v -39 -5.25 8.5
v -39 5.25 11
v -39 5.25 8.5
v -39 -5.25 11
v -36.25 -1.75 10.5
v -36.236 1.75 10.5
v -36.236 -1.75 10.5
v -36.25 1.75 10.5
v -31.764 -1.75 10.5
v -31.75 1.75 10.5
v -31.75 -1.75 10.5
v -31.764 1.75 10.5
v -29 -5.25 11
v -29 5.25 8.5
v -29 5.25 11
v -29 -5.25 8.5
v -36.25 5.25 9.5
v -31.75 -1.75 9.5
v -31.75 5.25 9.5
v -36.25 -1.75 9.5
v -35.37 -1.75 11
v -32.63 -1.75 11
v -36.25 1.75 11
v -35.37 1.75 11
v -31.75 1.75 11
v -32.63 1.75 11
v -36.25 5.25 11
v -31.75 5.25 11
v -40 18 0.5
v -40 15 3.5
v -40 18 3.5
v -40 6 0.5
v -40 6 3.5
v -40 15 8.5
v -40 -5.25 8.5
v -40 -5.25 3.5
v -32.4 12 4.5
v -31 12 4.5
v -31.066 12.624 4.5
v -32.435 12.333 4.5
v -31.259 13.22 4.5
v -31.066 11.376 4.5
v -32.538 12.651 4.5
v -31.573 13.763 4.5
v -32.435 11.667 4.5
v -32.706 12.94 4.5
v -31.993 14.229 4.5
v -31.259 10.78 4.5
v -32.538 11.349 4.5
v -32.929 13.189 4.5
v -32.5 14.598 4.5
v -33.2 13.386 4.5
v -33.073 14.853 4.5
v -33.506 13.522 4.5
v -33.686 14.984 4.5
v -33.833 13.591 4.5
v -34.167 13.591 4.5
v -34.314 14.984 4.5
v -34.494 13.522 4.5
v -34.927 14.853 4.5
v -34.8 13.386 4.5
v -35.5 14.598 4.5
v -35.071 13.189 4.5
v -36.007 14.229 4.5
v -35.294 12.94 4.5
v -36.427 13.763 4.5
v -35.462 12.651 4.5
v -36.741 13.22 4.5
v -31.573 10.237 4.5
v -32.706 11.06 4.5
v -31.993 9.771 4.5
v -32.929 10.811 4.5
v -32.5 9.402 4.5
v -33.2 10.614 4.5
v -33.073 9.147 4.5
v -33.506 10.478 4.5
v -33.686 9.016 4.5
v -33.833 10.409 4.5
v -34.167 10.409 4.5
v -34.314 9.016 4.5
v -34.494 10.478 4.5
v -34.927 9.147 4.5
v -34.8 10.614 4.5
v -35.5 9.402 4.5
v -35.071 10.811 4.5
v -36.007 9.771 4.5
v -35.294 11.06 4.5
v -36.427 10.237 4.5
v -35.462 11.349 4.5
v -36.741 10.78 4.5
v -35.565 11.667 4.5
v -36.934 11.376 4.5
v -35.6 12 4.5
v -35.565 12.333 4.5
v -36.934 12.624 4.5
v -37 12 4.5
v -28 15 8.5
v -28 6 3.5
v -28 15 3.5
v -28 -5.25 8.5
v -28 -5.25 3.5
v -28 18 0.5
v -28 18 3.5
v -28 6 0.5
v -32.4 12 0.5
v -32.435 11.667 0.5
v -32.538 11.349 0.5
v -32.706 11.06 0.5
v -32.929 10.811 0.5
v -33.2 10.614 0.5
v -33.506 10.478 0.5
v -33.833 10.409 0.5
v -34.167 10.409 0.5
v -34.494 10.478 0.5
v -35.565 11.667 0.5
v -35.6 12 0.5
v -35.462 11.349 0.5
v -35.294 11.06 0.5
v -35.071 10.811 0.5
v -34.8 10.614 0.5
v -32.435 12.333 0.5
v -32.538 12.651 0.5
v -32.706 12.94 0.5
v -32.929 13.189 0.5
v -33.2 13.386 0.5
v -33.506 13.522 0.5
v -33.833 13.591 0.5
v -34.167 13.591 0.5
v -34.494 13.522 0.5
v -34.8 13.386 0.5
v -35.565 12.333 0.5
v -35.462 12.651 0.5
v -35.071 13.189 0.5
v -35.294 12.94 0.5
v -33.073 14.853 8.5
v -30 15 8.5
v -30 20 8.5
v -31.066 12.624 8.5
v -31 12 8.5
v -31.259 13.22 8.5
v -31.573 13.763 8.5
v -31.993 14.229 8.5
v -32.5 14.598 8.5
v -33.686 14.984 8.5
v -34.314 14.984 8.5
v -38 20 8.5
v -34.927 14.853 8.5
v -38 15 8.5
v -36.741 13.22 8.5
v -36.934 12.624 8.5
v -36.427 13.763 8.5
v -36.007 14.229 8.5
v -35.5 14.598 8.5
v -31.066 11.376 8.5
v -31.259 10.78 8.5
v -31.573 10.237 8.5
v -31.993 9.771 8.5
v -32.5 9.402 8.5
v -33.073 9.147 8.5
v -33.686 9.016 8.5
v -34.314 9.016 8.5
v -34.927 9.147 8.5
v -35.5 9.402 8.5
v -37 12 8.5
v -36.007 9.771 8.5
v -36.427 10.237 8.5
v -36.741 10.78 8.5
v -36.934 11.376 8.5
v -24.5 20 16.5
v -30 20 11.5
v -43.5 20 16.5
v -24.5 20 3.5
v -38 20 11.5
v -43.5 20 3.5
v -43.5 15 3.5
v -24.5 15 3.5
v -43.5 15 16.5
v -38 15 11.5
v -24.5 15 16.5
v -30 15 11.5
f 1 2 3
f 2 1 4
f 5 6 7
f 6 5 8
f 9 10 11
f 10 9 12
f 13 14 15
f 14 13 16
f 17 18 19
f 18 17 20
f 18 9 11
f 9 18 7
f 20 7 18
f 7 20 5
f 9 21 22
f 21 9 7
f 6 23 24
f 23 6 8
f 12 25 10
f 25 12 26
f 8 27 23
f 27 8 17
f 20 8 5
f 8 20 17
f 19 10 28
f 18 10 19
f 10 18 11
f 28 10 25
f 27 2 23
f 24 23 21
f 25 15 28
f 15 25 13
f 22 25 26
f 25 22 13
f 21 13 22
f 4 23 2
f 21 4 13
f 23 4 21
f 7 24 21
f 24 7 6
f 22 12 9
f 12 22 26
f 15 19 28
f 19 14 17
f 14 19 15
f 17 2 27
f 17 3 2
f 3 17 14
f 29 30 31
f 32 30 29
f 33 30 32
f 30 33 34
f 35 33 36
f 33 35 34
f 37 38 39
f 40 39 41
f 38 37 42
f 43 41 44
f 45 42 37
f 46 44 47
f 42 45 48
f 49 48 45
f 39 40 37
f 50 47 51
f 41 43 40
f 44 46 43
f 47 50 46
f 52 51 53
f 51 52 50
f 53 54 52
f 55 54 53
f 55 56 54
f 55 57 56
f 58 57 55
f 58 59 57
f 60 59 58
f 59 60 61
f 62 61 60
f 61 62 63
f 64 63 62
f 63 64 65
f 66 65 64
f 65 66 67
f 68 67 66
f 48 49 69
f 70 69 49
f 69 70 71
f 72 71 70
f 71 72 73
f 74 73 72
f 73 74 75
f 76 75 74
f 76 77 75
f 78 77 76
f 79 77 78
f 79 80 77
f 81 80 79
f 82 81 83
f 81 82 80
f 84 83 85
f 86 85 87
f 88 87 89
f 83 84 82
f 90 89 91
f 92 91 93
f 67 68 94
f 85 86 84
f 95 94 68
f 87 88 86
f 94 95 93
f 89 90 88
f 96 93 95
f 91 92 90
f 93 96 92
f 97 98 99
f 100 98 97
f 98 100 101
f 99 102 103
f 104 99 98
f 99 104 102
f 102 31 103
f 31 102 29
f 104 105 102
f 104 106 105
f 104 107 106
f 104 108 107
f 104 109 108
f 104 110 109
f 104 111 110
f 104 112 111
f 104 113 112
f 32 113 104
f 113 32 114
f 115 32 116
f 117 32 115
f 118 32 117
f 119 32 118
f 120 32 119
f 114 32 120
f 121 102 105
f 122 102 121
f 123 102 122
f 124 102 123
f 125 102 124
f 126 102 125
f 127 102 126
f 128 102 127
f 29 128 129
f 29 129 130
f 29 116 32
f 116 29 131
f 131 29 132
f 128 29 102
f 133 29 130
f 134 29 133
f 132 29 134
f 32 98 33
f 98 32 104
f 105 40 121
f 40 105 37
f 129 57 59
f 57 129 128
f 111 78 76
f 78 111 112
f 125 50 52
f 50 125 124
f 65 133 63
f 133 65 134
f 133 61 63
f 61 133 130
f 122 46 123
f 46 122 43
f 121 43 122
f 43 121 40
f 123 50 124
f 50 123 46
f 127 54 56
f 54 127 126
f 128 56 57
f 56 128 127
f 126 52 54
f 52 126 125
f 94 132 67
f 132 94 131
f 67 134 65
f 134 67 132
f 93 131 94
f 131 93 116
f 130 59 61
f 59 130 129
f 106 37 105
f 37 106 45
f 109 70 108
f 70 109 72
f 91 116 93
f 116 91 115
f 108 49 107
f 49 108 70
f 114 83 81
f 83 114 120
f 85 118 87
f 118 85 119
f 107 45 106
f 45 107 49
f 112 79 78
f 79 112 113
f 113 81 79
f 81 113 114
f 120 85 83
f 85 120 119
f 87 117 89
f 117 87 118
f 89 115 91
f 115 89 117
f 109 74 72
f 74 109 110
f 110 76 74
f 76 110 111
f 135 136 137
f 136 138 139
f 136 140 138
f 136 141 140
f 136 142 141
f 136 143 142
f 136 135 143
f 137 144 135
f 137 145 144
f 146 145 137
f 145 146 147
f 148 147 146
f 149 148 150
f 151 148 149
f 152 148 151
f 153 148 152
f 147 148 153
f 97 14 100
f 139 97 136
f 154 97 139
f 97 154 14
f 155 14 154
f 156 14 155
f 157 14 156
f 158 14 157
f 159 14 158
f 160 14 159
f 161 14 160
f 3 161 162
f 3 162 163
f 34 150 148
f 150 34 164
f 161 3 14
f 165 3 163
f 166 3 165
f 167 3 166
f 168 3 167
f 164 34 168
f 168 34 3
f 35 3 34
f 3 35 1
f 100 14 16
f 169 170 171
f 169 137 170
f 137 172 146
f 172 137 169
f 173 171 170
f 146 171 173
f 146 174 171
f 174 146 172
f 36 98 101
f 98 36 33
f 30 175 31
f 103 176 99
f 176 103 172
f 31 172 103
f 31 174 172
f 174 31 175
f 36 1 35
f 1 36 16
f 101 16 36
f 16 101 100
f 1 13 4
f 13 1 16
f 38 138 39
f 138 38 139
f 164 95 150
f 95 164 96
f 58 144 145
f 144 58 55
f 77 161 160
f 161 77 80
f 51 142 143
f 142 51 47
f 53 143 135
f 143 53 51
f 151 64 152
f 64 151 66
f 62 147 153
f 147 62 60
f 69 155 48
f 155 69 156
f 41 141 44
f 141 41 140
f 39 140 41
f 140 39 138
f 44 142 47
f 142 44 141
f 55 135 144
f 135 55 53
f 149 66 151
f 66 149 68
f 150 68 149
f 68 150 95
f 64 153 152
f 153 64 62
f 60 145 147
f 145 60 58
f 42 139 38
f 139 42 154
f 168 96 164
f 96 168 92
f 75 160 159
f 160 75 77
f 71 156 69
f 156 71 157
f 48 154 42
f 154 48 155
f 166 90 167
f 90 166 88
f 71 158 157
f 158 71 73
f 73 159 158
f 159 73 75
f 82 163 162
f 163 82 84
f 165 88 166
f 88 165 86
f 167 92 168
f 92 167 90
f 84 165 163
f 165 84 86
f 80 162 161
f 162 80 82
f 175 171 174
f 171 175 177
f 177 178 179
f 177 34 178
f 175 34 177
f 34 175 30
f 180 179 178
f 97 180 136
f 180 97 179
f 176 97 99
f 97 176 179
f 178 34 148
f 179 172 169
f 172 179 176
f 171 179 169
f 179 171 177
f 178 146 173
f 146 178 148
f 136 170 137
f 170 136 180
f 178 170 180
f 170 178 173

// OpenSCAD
hallEffectSensor();







module hallEffectSensor(){

///////////////////////////////////////////////////////////////
//Tob hall effect sensor box
//////////////////////////////////////////////////////////////
translate([0,0,0]){
difference(){
translate([-34,0,10]) cube([10,3.5,1], center = true);

translate([-34,0,10]) cube([4+0.5,4,1], center = true);  
}    

difference(){
translate([-34,0,10+0.5+0.25]) cube([10,3.5,0.5], center = true);


translate([-34,0,5.4+0.3]) rotate([0,60,0]) cube([10.55,4,6], center = true);  
    
translate([-34,0,5.4+0.3]) rotate([0,-60,0]) cube([10.55,4,6], center = true);      
}  


translate([-34,-3.5,10+0.25]) cube([10,3.5,1.5], center = true);

difference(){
translate([-34,3.5,10+0.25]) cube([10,3.5,1.5], center = true);

translate([-34,0,10+0.25]) cube([4+0.5,15,1.5], center = true); 

}


translate([-34,0,10-1.25]) cube([10,10.5,1.5], center = true);


//end of hall effect sensor box






difference(){
translate([-34,12,4.5-2]) cube([12,12,8-4], center = true);

//hole through baseplate
translate([-34,12,-8]) rotate([0,0,0]) cylinder(h = 25, d=3.2, $fn = 30, center = true);


}







difference(){
    
//baseplate    
translate([-34,7.375,6]) cube([12,40-14.75,5], center = true);

translate([-34,12,6]) rotate([0,0,0]) cylinder(h = 6, d=6, $fn = 30, center = true);    
}}


///////////////////////////////////////////////////////////////







//bottom mount

translate([-34,-1.75,11.5])rotate([90,0,0]){
difference(){  
translate([0,-1.5,-19.25])cube(size = [15+4,8+5,5], center = true);

translate([0,-1.5,0]) cube(size = [8,3,100], center = true);
}

}









}
